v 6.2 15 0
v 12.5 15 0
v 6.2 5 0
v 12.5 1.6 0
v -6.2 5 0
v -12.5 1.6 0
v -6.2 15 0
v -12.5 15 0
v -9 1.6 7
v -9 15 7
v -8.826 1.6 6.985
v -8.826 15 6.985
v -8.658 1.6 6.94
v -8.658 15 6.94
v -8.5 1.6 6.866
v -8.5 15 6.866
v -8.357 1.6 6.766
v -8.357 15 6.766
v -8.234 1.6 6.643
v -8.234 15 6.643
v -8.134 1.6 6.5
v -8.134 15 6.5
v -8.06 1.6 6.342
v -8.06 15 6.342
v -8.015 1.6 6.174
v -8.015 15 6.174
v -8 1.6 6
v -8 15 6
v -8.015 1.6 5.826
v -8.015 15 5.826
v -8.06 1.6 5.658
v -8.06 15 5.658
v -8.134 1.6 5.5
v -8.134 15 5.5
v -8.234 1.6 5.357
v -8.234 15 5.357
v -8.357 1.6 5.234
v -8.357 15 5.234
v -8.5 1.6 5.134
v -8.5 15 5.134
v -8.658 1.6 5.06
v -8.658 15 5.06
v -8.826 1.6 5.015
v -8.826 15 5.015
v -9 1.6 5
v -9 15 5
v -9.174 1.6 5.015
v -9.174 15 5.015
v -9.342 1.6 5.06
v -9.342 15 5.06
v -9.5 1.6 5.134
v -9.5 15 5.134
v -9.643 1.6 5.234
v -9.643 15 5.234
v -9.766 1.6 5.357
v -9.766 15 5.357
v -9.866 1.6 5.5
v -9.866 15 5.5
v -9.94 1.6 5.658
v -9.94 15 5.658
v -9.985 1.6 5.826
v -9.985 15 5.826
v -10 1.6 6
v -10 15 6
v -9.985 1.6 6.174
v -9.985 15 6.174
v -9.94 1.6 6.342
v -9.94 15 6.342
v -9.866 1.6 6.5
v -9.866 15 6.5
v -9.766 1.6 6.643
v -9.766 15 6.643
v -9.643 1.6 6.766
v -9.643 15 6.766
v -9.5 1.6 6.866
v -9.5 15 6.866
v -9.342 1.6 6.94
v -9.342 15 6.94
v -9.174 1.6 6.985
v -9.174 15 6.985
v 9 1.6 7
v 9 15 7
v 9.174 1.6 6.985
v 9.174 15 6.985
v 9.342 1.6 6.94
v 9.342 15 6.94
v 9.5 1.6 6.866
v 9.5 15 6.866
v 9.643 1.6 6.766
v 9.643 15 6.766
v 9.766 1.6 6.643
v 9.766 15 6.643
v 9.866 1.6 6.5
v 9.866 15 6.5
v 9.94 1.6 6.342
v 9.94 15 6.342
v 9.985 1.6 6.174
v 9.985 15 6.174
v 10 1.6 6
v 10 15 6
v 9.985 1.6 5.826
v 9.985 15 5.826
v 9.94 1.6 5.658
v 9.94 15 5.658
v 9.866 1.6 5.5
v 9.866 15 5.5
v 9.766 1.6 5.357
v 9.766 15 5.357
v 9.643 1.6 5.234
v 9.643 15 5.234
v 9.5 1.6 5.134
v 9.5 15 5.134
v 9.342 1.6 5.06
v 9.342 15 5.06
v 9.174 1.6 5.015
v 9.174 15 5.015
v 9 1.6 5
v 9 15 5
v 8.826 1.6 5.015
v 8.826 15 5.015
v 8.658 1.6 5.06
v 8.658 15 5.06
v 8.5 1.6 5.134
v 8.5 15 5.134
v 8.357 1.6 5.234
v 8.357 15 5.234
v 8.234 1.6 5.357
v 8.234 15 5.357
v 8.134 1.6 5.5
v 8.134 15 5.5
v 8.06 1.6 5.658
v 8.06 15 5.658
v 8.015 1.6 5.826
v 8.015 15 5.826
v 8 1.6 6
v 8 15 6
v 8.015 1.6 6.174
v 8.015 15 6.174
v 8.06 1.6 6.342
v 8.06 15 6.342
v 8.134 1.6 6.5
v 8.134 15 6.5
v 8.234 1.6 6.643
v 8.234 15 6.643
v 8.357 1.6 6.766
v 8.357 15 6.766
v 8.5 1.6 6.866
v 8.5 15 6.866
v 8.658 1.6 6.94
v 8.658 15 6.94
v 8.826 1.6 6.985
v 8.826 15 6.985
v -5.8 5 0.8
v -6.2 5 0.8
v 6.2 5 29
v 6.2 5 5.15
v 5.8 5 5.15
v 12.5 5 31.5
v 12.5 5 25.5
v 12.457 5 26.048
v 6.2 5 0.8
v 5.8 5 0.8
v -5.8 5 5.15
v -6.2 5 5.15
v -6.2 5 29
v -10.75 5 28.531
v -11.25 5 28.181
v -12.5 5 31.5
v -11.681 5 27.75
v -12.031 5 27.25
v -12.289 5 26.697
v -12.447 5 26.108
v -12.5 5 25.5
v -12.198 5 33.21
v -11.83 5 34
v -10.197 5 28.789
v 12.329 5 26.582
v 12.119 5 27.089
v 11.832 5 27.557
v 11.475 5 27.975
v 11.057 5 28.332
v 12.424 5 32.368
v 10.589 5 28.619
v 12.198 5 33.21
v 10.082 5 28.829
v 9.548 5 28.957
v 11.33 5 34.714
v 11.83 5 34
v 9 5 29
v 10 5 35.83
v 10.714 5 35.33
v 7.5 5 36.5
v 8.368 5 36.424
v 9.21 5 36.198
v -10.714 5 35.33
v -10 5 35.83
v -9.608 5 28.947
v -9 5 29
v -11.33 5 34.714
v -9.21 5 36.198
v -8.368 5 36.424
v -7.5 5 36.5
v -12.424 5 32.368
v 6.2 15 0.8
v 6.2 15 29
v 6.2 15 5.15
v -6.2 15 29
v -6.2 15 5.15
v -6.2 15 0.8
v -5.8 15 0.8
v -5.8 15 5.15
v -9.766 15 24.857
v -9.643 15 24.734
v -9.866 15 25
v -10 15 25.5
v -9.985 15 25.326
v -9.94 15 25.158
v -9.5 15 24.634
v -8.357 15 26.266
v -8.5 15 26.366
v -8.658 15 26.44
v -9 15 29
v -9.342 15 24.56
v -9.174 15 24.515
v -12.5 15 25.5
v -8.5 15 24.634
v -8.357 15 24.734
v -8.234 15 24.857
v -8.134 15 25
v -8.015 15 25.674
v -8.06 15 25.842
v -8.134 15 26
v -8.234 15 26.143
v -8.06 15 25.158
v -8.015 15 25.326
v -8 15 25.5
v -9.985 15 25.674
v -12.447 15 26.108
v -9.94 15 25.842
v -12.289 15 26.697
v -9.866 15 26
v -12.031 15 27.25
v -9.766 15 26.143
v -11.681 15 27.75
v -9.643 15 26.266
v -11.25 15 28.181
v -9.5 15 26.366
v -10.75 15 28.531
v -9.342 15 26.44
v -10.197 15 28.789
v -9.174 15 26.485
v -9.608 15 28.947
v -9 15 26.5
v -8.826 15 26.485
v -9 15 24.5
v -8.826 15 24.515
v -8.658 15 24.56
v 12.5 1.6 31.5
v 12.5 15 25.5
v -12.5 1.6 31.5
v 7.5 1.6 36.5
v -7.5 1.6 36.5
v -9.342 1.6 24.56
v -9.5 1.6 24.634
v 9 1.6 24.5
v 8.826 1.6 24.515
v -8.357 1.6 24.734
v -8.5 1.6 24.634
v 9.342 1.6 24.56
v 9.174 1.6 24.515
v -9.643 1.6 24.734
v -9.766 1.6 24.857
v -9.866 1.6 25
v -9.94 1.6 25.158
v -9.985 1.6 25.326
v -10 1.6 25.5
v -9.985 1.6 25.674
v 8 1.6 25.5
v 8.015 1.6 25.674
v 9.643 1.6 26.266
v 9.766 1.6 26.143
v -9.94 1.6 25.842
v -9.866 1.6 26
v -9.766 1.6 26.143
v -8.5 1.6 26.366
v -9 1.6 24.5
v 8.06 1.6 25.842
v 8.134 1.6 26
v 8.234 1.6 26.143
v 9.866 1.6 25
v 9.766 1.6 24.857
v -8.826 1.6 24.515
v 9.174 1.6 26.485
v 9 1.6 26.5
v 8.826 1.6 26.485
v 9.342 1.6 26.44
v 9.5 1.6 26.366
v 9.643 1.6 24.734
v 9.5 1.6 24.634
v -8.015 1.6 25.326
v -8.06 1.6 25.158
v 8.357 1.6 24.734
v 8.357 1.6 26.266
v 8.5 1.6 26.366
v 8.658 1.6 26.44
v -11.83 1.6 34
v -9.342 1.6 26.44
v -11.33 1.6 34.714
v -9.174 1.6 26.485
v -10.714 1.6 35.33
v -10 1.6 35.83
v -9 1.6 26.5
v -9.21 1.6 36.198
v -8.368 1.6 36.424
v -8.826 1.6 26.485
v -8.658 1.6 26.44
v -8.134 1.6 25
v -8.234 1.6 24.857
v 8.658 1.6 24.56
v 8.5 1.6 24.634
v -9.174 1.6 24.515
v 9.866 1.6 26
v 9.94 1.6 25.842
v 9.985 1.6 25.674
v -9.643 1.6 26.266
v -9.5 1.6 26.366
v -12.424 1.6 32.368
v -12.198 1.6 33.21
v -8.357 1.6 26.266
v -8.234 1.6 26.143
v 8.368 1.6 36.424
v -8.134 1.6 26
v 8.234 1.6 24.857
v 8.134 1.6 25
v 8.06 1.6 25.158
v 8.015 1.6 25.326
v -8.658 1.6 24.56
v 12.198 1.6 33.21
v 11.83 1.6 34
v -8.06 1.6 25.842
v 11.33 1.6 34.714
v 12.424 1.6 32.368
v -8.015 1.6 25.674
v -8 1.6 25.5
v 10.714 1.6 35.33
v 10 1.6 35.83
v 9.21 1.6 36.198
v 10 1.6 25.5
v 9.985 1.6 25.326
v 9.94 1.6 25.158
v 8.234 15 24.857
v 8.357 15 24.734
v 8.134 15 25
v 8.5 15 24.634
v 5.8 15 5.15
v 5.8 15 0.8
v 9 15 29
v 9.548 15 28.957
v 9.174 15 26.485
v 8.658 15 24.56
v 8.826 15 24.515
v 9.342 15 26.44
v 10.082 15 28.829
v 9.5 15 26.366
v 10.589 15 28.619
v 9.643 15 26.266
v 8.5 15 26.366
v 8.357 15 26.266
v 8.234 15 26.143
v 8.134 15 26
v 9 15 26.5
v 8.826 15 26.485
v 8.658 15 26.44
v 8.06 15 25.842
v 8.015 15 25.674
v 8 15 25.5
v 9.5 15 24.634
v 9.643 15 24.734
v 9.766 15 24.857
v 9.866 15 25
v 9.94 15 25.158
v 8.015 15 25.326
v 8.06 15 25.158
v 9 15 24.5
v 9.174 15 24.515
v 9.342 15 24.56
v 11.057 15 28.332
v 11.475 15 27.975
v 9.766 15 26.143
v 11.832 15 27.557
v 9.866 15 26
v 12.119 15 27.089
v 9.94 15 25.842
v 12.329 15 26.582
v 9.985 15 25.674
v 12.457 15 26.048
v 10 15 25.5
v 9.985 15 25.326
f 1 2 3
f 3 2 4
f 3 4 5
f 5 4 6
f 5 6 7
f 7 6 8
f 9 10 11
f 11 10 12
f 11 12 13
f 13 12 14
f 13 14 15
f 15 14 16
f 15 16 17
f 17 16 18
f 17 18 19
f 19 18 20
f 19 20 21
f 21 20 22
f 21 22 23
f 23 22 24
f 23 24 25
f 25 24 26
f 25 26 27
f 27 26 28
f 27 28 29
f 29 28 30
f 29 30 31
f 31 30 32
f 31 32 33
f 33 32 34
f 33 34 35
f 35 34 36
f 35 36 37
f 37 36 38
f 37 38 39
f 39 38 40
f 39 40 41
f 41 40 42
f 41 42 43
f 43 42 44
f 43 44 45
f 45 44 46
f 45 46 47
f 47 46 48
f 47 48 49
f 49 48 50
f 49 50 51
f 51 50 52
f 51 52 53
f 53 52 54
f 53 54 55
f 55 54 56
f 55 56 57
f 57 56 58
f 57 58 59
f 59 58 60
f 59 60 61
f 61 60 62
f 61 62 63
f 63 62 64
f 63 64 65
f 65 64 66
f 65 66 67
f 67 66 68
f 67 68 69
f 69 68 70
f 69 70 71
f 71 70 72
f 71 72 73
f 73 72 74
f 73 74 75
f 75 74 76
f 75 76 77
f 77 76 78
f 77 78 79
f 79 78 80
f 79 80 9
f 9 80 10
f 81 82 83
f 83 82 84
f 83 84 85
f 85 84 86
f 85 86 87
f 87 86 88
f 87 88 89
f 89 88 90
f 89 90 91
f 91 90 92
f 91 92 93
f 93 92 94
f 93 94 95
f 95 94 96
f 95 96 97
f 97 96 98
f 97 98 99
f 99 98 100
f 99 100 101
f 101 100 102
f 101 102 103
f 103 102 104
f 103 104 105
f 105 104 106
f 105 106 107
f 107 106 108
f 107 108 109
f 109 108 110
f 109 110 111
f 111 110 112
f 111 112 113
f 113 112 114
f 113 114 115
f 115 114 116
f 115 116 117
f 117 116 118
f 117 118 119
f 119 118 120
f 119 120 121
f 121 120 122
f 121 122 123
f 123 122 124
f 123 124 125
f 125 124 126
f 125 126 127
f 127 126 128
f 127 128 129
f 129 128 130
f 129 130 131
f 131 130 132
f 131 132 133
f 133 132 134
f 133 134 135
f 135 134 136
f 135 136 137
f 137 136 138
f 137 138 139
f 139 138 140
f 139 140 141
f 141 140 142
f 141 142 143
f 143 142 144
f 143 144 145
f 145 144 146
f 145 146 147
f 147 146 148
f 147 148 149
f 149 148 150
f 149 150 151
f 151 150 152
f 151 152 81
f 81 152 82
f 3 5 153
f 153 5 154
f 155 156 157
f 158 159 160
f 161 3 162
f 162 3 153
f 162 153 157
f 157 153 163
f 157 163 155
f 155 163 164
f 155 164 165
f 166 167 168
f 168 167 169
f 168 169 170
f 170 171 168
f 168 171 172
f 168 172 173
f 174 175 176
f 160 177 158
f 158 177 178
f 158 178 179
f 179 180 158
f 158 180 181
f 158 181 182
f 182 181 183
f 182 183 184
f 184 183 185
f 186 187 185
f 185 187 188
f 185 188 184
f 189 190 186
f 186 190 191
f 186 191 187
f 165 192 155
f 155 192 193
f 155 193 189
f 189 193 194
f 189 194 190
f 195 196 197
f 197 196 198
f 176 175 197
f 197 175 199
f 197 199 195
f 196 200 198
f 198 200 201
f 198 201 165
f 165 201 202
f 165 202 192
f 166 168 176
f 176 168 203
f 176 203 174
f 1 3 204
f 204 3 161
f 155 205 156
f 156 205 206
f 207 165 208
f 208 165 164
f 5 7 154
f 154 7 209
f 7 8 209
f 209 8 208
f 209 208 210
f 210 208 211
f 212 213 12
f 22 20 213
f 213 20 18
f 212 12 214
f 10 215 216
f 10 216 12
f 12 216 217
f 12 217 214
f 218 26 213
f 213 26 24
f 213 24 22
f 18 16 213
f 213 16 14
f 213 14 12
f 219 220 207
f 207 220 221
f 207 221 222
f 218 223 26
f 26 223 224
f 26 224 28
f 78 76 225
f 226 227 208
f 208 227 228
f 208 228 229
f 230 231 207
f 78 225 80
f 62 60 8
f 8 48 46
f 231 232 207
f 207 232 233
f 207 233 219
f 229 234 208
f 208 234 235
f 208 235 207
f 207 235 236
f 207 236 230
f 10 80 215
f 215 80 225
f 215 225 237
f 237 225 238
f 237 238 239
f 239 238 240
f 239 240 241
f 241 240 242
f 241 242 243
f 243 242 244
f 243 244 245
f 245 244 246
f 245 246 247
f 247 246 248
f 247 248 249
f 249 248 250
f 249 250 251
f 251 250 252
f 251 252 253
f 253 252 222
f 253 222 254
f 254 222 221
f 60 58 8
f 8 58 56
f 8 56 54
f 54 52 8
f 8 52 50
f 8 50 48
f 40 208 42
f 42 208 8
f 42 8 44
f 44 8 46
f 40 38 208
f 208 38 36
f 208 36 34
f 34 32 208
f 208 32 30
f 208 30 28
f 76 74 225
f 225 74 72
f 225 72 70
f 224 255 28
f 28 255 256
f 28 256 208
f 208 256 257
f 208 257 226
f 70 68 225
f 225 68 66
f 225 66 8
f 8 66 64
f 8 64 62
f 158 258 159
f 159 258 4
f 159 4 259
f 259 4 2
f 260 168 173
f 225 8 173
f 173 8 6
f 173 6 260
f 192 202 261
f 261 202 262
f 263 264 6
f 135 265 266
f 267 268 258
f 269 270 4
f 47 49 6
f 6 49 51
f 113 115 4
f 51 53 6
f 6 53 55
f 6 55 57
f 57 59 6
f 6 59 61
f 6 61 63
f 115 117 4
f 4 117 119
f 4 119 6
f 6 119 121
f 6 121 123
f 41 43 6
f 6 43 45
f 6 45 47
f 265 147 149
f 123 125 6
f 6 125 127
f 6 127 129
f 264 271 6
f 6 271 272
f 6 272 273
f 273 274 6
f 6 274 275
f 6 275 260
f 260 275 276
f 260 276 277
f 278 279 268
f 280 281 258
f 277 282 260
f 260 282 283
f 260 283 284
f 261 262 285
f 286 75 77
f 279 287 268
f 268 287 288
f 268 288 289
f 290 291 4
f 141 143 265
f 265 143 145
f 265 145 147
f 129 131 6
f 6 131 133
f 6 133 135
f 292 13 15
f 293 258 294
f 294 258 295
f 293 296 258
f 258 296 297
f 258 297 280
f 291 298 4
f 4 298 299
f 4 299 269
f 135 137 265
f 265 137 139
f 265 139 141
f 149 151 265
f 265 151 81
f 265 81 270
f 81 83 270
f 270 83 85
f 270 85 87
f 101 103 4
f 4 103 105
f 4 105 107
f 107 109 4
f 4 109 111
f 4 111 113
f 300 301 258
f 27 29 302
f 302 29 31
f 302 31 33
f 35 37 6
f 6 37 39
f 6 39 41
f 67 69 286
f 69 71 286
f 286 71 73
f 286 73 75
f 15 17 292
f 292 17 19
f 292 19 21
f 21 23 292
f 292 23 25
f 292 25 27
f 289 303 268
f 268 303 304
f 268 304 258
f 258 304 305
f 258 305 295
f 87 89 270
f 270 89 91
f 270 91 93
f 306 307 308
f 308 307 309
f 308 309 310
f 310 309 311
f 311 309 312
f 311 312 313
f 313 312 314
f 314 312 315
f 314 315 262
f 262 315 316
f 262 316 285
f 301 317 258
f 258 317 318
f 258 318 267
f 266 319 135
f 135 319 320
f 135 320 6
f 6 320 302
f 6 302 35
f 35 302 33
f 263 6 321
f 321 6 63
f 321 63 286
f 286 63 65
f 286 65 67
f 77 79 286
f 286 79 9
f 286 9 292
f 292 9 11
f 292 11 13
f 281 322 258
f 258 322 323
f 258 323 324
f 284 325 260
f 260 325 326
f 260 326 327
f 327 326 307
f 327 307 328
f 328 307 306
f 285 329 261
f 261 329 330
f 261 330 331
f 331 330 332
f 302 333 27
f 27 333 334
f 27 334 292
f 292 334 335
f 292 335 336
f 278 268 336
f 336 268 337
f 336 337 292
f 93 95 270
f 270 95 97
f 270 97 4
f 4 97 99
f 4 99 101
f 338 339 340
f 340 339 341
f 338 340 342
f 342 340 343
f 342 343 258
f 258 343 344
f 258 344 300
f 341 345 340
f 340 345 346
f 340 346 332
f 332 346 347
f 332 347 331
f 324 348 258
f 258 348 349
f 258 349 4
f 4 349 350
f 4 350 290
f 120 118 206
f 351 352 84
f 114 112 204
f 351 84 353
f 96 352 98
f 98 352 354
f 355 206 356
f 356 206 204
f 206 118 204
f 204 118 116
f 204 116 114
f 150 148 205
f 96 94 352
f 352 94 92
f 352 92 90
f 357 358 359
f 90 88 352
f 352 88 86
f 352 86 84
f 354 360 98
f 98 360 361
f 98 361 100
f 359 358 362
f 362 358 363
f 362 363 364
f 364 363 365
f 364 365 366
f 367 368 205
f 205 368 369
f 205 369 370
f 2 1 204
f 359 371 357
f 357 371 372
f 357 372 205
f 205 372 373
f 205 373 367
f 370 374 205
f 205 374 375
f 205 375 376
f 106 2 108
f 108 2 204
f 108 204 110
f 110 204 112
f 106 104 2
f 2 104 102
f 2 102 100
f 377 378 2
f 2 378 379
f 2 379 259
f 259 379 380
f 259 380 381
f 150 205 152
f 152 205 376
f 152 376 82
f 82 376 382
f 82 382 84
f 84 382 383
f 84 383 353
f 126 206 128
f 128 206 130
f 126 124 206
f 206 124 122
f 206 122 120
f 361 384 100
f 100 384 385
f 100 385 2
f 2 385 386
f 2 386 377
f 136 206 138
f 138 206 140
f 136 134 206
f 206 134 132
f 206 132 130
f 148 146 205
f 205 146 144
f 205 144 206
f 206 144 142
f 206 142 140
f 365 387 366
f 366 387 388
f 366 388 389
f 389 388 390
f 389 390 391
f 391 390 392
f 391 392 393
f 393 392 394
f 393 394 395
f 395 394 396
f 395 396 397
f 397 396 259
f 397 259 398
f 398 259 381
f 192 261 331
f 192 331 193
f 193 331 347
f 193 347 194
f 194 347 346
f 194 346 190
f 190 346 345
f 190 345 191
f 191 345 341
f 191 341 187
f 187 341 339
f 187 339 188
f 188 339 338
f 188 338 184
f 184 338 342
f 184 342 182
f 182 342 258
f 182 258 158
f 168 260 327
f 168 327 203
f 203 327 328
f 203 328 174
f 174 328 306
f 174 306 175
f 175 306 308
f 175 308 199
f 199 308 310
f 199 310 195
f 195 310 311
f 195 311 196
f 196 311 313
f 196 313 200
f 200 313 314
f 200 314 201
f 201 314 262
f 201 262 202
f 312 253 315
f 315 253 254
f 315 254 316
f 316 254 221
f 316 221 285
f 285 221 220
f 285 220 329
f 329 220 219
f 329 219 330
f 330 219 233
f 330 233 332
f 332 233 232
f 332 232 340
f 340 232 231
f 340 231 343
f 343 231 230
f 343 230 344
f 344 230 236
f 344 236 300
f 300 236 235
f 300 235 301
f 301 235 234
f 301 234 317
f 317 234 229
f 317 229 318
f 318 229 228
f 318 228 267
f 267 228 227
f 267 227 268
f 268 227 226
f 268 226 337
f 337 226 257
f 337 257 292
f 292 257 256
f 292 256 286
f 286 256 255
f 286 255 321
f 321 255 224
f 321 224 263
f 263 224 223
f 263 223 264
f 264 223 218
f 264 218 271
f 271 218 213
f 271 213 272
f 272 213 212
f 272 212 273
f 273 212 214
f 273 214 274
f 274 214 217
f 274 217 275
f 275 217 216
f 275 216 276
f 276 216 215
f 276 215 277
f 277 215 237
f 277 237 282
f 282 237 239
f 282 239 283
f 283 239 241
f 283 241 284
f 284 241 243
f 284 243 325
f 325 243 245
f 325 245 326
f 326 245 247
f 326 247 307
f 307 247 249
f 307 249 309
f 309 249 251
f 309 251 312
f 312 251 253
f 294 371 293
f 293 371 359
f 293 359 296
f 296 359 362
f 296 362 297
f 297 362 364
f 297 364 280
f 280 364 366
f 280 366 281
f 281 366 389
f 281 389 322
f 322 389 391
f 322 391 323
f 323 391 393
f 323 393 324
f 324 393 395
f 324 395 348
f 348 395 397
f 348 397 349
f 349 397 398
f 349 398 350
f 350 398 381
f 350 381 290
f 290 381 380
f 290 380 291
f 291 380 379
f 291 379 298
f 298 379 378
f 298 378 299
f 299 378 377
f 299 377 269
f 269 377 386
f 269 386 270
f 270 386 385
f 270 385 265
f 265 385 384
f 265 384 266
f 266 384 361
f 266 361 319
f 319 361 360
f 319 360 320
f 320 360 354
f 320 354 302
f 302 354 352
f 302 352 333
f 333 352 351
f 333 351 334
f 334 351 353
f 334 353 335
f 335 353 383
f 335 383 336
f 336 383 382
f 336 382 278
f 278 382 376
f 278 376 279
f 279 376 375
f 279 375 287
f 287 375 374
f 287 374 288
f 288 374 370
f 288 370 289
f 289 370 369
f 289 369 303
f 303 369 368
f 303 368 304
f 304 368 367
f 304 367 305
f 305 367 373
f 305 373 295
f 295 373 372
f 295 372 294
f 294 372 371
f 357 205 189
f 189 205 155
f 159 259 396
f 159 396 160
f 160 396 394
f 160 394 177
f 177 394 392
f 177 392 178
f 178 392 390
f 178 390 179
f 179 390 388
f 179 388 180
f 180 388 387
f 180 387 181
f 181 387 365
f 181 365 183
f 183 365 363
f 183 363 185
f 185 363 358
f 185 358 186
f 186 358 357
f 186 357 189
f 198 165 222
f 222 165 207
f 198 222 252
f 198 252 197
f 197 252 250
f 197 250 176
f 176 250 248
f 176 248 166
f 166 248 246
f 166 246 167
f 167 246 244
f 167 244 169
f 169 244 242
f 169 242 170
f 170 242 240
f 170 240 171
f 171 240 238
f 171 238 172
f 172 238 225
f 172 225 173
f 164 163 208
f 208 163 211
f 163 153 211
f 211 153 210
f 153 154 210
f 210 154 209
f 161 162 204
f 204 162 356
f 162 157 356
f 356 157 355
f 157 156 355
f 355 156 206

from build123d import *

# Parameters (mm, degrees)
SKETCH1_W           = 30
SKETCH1_H           = 12.5
BOSS_EXTRUDE1_DEPTH = 1.6
SKETCH2_W           = 25
SKETCH2_H           = 36.5
BOSS_EXTRUDE2_DEPTH = 3.4
SKETCH3_W           = 6.3
SKETCH3_H           = 30
BOSS_EXTRUDE3_DEPTH = 10
FILLET1_R           = 5
SKETCH4_R           = 1
CUT_EXTRUDE1_DEPTH  = 16
CUT_EXTRUDE2_DEPTH  = 10
SKETCH9_W           = 0.4
SKETCH9_H           = 4.35
BOSS_EXTRUDE4_DEPTH = 10
SKETCH10_R          = 1
CUT_EXTRUDE3_DEPTH  = 16
SKETCH11_W          = 36.216016417
SKETCH11_H          = 16.907618384
CUT_EXTRUDE4_DEPTH  = 1.6


with BuildPart() as part:
    # Sketch1 → Boss-Extrude1 (new body)
    with BuildSketch(Plane(origin=(0, 0, 0), x_dir=(1, 0, 0), z_dir=(0, 1, 0))):
        with Locations((0, -6.25)):
            Rectangle(SKETCH1_W, SKETCH1_H)
    extrude(amount=BOSS_EXTRUDE1_DEPTH)

    # Sketch2 → Boss-Extrude2 (add)
    with BuildSketch(Plane(origin=(0, 1.6, 0), x_dir=(1, 0, 0), z_dir=(0, 1, 0))):
        with Locations((0, -18.25)):
            Rectangle(SKETCH2_W, SKETCH2_H)
    extrude(amount=BOSS_EXTRUDE2_DEPTH)

    # Sketch3 → Boss-Extrude3 (add)
    with BuildSketch(Plane(origin=(0, 5, 0), x_dir=(1, 0, 0), z_dir=(0, 1, 0))):
        with Locations((-9.35, -15)):
            Rectangle(SKETCH3_W, SKETCH3_H)
        with Locations((9.35, -15)):
            Rectangle(SKETCH3_W, SKETCH3_H)
    extrude(amount=BOSS_EXTRUDE3_DEPTH)

    # Fillet1
    fillet1_edges = [part.edges().sort_by_distance(p)[0] for p in [
        (12.5, 3.3, 36.5),
        (-12.5, 3.3, 36.5),
    ]]
    fillet(fillet1_edges, radius=FILLET1_R)

    # Sketch4 → Cut-Extrude1 (cut, through all)
    with BuildSketch(Plane(origin=(0, 15, 0), x_dir=(1, 0, 0), z_dir=(0, 1, 0))):
        with Locations((-9, -25.5)):
            Circle(SKETCH4_R)
        with Locations((9, -25.5)):
            Circle(SKETCH4_R)
    extrude(amount=-CUT_EXTRUDE1_DEPTH, mode=Mode.SUBTRACT)

    # Sketch5 → Cut-Extrude2 (cut)
    with BuildSketch(Plane(origin=(0, 15, 0), x_dir=(1, 0, 0), z_dir=(0, 1, 0))):
        with BuildLine():
            Line((-9, -29), (9, -29))
            ThreePointArc((9, -29), (11.474873734, -27.974873734), (12.5, -25.5))
            Line((12.5, -25.5), (17.216027855, -25.5))
            Line((17.216027855, -25.5), (17.216027855, -35.629206005))
            Line((17.216027855, -35.629206005), (-17.65496497, -35.320310993))
            Line((-17.65496497, -35.320310993), (-17.65496497, -25.5))
            Line((-17.65496497, -25.5), (-12.5, -25.5))
            ThreePointArc((-12.5, -25.5), (-11.474873734, -27.974873734), (-9, -29))
        make_face()
    extrude(amount=-CUT_EXTRUDE2_DEPTH, mode=Mode.SUBTRACT)

    # Sketch9 → Boss-Extrude4 (add)
    with BuildSketch(Plane(origin=(0, 5, 0), x_dir=(1, 0, 0), z_dir=(0, 1, 0))):
        with Locations((-6, -2.975)):
            Rectangle(SKETCH9_W, SKETCH9_H)
        with Locations((6, -2.975)):
            Rectangle(SKETCH9_W, SKETCH9_H)
    extrude(amount=BOSS_EXTRUDE4_DEPTH)

    # Sketch10 → Cut-Extrude3 (cut, through all)
    with BuildSketch(Plane(origin=(0, 15, 0), x_dir=(1, 0, 0), z_dir=(0, 1, 0))):
        with Locations((-9, -6)):
            Circle(SKETCH10_R)
        with Locations((9, -6)):
            Circle(SKETCH10_R)
    extrude(amount=-CUT_EXTRUDE3_DEPTH, mode=Mode.SUBTRACT)

    # Sketch11 → Cut-Extrude4 (cut)
    with BuildSketch(Plane.XZ):
        with Locations((-0.332022718, 6.399318006)):
            Rectangle(SKETCH11_W, SKETCH11_H)
    extrude(amount=-CUT_EXTRUDE4_DEPTH, mode=Mode.SUBTRACT)


solid = part.part
